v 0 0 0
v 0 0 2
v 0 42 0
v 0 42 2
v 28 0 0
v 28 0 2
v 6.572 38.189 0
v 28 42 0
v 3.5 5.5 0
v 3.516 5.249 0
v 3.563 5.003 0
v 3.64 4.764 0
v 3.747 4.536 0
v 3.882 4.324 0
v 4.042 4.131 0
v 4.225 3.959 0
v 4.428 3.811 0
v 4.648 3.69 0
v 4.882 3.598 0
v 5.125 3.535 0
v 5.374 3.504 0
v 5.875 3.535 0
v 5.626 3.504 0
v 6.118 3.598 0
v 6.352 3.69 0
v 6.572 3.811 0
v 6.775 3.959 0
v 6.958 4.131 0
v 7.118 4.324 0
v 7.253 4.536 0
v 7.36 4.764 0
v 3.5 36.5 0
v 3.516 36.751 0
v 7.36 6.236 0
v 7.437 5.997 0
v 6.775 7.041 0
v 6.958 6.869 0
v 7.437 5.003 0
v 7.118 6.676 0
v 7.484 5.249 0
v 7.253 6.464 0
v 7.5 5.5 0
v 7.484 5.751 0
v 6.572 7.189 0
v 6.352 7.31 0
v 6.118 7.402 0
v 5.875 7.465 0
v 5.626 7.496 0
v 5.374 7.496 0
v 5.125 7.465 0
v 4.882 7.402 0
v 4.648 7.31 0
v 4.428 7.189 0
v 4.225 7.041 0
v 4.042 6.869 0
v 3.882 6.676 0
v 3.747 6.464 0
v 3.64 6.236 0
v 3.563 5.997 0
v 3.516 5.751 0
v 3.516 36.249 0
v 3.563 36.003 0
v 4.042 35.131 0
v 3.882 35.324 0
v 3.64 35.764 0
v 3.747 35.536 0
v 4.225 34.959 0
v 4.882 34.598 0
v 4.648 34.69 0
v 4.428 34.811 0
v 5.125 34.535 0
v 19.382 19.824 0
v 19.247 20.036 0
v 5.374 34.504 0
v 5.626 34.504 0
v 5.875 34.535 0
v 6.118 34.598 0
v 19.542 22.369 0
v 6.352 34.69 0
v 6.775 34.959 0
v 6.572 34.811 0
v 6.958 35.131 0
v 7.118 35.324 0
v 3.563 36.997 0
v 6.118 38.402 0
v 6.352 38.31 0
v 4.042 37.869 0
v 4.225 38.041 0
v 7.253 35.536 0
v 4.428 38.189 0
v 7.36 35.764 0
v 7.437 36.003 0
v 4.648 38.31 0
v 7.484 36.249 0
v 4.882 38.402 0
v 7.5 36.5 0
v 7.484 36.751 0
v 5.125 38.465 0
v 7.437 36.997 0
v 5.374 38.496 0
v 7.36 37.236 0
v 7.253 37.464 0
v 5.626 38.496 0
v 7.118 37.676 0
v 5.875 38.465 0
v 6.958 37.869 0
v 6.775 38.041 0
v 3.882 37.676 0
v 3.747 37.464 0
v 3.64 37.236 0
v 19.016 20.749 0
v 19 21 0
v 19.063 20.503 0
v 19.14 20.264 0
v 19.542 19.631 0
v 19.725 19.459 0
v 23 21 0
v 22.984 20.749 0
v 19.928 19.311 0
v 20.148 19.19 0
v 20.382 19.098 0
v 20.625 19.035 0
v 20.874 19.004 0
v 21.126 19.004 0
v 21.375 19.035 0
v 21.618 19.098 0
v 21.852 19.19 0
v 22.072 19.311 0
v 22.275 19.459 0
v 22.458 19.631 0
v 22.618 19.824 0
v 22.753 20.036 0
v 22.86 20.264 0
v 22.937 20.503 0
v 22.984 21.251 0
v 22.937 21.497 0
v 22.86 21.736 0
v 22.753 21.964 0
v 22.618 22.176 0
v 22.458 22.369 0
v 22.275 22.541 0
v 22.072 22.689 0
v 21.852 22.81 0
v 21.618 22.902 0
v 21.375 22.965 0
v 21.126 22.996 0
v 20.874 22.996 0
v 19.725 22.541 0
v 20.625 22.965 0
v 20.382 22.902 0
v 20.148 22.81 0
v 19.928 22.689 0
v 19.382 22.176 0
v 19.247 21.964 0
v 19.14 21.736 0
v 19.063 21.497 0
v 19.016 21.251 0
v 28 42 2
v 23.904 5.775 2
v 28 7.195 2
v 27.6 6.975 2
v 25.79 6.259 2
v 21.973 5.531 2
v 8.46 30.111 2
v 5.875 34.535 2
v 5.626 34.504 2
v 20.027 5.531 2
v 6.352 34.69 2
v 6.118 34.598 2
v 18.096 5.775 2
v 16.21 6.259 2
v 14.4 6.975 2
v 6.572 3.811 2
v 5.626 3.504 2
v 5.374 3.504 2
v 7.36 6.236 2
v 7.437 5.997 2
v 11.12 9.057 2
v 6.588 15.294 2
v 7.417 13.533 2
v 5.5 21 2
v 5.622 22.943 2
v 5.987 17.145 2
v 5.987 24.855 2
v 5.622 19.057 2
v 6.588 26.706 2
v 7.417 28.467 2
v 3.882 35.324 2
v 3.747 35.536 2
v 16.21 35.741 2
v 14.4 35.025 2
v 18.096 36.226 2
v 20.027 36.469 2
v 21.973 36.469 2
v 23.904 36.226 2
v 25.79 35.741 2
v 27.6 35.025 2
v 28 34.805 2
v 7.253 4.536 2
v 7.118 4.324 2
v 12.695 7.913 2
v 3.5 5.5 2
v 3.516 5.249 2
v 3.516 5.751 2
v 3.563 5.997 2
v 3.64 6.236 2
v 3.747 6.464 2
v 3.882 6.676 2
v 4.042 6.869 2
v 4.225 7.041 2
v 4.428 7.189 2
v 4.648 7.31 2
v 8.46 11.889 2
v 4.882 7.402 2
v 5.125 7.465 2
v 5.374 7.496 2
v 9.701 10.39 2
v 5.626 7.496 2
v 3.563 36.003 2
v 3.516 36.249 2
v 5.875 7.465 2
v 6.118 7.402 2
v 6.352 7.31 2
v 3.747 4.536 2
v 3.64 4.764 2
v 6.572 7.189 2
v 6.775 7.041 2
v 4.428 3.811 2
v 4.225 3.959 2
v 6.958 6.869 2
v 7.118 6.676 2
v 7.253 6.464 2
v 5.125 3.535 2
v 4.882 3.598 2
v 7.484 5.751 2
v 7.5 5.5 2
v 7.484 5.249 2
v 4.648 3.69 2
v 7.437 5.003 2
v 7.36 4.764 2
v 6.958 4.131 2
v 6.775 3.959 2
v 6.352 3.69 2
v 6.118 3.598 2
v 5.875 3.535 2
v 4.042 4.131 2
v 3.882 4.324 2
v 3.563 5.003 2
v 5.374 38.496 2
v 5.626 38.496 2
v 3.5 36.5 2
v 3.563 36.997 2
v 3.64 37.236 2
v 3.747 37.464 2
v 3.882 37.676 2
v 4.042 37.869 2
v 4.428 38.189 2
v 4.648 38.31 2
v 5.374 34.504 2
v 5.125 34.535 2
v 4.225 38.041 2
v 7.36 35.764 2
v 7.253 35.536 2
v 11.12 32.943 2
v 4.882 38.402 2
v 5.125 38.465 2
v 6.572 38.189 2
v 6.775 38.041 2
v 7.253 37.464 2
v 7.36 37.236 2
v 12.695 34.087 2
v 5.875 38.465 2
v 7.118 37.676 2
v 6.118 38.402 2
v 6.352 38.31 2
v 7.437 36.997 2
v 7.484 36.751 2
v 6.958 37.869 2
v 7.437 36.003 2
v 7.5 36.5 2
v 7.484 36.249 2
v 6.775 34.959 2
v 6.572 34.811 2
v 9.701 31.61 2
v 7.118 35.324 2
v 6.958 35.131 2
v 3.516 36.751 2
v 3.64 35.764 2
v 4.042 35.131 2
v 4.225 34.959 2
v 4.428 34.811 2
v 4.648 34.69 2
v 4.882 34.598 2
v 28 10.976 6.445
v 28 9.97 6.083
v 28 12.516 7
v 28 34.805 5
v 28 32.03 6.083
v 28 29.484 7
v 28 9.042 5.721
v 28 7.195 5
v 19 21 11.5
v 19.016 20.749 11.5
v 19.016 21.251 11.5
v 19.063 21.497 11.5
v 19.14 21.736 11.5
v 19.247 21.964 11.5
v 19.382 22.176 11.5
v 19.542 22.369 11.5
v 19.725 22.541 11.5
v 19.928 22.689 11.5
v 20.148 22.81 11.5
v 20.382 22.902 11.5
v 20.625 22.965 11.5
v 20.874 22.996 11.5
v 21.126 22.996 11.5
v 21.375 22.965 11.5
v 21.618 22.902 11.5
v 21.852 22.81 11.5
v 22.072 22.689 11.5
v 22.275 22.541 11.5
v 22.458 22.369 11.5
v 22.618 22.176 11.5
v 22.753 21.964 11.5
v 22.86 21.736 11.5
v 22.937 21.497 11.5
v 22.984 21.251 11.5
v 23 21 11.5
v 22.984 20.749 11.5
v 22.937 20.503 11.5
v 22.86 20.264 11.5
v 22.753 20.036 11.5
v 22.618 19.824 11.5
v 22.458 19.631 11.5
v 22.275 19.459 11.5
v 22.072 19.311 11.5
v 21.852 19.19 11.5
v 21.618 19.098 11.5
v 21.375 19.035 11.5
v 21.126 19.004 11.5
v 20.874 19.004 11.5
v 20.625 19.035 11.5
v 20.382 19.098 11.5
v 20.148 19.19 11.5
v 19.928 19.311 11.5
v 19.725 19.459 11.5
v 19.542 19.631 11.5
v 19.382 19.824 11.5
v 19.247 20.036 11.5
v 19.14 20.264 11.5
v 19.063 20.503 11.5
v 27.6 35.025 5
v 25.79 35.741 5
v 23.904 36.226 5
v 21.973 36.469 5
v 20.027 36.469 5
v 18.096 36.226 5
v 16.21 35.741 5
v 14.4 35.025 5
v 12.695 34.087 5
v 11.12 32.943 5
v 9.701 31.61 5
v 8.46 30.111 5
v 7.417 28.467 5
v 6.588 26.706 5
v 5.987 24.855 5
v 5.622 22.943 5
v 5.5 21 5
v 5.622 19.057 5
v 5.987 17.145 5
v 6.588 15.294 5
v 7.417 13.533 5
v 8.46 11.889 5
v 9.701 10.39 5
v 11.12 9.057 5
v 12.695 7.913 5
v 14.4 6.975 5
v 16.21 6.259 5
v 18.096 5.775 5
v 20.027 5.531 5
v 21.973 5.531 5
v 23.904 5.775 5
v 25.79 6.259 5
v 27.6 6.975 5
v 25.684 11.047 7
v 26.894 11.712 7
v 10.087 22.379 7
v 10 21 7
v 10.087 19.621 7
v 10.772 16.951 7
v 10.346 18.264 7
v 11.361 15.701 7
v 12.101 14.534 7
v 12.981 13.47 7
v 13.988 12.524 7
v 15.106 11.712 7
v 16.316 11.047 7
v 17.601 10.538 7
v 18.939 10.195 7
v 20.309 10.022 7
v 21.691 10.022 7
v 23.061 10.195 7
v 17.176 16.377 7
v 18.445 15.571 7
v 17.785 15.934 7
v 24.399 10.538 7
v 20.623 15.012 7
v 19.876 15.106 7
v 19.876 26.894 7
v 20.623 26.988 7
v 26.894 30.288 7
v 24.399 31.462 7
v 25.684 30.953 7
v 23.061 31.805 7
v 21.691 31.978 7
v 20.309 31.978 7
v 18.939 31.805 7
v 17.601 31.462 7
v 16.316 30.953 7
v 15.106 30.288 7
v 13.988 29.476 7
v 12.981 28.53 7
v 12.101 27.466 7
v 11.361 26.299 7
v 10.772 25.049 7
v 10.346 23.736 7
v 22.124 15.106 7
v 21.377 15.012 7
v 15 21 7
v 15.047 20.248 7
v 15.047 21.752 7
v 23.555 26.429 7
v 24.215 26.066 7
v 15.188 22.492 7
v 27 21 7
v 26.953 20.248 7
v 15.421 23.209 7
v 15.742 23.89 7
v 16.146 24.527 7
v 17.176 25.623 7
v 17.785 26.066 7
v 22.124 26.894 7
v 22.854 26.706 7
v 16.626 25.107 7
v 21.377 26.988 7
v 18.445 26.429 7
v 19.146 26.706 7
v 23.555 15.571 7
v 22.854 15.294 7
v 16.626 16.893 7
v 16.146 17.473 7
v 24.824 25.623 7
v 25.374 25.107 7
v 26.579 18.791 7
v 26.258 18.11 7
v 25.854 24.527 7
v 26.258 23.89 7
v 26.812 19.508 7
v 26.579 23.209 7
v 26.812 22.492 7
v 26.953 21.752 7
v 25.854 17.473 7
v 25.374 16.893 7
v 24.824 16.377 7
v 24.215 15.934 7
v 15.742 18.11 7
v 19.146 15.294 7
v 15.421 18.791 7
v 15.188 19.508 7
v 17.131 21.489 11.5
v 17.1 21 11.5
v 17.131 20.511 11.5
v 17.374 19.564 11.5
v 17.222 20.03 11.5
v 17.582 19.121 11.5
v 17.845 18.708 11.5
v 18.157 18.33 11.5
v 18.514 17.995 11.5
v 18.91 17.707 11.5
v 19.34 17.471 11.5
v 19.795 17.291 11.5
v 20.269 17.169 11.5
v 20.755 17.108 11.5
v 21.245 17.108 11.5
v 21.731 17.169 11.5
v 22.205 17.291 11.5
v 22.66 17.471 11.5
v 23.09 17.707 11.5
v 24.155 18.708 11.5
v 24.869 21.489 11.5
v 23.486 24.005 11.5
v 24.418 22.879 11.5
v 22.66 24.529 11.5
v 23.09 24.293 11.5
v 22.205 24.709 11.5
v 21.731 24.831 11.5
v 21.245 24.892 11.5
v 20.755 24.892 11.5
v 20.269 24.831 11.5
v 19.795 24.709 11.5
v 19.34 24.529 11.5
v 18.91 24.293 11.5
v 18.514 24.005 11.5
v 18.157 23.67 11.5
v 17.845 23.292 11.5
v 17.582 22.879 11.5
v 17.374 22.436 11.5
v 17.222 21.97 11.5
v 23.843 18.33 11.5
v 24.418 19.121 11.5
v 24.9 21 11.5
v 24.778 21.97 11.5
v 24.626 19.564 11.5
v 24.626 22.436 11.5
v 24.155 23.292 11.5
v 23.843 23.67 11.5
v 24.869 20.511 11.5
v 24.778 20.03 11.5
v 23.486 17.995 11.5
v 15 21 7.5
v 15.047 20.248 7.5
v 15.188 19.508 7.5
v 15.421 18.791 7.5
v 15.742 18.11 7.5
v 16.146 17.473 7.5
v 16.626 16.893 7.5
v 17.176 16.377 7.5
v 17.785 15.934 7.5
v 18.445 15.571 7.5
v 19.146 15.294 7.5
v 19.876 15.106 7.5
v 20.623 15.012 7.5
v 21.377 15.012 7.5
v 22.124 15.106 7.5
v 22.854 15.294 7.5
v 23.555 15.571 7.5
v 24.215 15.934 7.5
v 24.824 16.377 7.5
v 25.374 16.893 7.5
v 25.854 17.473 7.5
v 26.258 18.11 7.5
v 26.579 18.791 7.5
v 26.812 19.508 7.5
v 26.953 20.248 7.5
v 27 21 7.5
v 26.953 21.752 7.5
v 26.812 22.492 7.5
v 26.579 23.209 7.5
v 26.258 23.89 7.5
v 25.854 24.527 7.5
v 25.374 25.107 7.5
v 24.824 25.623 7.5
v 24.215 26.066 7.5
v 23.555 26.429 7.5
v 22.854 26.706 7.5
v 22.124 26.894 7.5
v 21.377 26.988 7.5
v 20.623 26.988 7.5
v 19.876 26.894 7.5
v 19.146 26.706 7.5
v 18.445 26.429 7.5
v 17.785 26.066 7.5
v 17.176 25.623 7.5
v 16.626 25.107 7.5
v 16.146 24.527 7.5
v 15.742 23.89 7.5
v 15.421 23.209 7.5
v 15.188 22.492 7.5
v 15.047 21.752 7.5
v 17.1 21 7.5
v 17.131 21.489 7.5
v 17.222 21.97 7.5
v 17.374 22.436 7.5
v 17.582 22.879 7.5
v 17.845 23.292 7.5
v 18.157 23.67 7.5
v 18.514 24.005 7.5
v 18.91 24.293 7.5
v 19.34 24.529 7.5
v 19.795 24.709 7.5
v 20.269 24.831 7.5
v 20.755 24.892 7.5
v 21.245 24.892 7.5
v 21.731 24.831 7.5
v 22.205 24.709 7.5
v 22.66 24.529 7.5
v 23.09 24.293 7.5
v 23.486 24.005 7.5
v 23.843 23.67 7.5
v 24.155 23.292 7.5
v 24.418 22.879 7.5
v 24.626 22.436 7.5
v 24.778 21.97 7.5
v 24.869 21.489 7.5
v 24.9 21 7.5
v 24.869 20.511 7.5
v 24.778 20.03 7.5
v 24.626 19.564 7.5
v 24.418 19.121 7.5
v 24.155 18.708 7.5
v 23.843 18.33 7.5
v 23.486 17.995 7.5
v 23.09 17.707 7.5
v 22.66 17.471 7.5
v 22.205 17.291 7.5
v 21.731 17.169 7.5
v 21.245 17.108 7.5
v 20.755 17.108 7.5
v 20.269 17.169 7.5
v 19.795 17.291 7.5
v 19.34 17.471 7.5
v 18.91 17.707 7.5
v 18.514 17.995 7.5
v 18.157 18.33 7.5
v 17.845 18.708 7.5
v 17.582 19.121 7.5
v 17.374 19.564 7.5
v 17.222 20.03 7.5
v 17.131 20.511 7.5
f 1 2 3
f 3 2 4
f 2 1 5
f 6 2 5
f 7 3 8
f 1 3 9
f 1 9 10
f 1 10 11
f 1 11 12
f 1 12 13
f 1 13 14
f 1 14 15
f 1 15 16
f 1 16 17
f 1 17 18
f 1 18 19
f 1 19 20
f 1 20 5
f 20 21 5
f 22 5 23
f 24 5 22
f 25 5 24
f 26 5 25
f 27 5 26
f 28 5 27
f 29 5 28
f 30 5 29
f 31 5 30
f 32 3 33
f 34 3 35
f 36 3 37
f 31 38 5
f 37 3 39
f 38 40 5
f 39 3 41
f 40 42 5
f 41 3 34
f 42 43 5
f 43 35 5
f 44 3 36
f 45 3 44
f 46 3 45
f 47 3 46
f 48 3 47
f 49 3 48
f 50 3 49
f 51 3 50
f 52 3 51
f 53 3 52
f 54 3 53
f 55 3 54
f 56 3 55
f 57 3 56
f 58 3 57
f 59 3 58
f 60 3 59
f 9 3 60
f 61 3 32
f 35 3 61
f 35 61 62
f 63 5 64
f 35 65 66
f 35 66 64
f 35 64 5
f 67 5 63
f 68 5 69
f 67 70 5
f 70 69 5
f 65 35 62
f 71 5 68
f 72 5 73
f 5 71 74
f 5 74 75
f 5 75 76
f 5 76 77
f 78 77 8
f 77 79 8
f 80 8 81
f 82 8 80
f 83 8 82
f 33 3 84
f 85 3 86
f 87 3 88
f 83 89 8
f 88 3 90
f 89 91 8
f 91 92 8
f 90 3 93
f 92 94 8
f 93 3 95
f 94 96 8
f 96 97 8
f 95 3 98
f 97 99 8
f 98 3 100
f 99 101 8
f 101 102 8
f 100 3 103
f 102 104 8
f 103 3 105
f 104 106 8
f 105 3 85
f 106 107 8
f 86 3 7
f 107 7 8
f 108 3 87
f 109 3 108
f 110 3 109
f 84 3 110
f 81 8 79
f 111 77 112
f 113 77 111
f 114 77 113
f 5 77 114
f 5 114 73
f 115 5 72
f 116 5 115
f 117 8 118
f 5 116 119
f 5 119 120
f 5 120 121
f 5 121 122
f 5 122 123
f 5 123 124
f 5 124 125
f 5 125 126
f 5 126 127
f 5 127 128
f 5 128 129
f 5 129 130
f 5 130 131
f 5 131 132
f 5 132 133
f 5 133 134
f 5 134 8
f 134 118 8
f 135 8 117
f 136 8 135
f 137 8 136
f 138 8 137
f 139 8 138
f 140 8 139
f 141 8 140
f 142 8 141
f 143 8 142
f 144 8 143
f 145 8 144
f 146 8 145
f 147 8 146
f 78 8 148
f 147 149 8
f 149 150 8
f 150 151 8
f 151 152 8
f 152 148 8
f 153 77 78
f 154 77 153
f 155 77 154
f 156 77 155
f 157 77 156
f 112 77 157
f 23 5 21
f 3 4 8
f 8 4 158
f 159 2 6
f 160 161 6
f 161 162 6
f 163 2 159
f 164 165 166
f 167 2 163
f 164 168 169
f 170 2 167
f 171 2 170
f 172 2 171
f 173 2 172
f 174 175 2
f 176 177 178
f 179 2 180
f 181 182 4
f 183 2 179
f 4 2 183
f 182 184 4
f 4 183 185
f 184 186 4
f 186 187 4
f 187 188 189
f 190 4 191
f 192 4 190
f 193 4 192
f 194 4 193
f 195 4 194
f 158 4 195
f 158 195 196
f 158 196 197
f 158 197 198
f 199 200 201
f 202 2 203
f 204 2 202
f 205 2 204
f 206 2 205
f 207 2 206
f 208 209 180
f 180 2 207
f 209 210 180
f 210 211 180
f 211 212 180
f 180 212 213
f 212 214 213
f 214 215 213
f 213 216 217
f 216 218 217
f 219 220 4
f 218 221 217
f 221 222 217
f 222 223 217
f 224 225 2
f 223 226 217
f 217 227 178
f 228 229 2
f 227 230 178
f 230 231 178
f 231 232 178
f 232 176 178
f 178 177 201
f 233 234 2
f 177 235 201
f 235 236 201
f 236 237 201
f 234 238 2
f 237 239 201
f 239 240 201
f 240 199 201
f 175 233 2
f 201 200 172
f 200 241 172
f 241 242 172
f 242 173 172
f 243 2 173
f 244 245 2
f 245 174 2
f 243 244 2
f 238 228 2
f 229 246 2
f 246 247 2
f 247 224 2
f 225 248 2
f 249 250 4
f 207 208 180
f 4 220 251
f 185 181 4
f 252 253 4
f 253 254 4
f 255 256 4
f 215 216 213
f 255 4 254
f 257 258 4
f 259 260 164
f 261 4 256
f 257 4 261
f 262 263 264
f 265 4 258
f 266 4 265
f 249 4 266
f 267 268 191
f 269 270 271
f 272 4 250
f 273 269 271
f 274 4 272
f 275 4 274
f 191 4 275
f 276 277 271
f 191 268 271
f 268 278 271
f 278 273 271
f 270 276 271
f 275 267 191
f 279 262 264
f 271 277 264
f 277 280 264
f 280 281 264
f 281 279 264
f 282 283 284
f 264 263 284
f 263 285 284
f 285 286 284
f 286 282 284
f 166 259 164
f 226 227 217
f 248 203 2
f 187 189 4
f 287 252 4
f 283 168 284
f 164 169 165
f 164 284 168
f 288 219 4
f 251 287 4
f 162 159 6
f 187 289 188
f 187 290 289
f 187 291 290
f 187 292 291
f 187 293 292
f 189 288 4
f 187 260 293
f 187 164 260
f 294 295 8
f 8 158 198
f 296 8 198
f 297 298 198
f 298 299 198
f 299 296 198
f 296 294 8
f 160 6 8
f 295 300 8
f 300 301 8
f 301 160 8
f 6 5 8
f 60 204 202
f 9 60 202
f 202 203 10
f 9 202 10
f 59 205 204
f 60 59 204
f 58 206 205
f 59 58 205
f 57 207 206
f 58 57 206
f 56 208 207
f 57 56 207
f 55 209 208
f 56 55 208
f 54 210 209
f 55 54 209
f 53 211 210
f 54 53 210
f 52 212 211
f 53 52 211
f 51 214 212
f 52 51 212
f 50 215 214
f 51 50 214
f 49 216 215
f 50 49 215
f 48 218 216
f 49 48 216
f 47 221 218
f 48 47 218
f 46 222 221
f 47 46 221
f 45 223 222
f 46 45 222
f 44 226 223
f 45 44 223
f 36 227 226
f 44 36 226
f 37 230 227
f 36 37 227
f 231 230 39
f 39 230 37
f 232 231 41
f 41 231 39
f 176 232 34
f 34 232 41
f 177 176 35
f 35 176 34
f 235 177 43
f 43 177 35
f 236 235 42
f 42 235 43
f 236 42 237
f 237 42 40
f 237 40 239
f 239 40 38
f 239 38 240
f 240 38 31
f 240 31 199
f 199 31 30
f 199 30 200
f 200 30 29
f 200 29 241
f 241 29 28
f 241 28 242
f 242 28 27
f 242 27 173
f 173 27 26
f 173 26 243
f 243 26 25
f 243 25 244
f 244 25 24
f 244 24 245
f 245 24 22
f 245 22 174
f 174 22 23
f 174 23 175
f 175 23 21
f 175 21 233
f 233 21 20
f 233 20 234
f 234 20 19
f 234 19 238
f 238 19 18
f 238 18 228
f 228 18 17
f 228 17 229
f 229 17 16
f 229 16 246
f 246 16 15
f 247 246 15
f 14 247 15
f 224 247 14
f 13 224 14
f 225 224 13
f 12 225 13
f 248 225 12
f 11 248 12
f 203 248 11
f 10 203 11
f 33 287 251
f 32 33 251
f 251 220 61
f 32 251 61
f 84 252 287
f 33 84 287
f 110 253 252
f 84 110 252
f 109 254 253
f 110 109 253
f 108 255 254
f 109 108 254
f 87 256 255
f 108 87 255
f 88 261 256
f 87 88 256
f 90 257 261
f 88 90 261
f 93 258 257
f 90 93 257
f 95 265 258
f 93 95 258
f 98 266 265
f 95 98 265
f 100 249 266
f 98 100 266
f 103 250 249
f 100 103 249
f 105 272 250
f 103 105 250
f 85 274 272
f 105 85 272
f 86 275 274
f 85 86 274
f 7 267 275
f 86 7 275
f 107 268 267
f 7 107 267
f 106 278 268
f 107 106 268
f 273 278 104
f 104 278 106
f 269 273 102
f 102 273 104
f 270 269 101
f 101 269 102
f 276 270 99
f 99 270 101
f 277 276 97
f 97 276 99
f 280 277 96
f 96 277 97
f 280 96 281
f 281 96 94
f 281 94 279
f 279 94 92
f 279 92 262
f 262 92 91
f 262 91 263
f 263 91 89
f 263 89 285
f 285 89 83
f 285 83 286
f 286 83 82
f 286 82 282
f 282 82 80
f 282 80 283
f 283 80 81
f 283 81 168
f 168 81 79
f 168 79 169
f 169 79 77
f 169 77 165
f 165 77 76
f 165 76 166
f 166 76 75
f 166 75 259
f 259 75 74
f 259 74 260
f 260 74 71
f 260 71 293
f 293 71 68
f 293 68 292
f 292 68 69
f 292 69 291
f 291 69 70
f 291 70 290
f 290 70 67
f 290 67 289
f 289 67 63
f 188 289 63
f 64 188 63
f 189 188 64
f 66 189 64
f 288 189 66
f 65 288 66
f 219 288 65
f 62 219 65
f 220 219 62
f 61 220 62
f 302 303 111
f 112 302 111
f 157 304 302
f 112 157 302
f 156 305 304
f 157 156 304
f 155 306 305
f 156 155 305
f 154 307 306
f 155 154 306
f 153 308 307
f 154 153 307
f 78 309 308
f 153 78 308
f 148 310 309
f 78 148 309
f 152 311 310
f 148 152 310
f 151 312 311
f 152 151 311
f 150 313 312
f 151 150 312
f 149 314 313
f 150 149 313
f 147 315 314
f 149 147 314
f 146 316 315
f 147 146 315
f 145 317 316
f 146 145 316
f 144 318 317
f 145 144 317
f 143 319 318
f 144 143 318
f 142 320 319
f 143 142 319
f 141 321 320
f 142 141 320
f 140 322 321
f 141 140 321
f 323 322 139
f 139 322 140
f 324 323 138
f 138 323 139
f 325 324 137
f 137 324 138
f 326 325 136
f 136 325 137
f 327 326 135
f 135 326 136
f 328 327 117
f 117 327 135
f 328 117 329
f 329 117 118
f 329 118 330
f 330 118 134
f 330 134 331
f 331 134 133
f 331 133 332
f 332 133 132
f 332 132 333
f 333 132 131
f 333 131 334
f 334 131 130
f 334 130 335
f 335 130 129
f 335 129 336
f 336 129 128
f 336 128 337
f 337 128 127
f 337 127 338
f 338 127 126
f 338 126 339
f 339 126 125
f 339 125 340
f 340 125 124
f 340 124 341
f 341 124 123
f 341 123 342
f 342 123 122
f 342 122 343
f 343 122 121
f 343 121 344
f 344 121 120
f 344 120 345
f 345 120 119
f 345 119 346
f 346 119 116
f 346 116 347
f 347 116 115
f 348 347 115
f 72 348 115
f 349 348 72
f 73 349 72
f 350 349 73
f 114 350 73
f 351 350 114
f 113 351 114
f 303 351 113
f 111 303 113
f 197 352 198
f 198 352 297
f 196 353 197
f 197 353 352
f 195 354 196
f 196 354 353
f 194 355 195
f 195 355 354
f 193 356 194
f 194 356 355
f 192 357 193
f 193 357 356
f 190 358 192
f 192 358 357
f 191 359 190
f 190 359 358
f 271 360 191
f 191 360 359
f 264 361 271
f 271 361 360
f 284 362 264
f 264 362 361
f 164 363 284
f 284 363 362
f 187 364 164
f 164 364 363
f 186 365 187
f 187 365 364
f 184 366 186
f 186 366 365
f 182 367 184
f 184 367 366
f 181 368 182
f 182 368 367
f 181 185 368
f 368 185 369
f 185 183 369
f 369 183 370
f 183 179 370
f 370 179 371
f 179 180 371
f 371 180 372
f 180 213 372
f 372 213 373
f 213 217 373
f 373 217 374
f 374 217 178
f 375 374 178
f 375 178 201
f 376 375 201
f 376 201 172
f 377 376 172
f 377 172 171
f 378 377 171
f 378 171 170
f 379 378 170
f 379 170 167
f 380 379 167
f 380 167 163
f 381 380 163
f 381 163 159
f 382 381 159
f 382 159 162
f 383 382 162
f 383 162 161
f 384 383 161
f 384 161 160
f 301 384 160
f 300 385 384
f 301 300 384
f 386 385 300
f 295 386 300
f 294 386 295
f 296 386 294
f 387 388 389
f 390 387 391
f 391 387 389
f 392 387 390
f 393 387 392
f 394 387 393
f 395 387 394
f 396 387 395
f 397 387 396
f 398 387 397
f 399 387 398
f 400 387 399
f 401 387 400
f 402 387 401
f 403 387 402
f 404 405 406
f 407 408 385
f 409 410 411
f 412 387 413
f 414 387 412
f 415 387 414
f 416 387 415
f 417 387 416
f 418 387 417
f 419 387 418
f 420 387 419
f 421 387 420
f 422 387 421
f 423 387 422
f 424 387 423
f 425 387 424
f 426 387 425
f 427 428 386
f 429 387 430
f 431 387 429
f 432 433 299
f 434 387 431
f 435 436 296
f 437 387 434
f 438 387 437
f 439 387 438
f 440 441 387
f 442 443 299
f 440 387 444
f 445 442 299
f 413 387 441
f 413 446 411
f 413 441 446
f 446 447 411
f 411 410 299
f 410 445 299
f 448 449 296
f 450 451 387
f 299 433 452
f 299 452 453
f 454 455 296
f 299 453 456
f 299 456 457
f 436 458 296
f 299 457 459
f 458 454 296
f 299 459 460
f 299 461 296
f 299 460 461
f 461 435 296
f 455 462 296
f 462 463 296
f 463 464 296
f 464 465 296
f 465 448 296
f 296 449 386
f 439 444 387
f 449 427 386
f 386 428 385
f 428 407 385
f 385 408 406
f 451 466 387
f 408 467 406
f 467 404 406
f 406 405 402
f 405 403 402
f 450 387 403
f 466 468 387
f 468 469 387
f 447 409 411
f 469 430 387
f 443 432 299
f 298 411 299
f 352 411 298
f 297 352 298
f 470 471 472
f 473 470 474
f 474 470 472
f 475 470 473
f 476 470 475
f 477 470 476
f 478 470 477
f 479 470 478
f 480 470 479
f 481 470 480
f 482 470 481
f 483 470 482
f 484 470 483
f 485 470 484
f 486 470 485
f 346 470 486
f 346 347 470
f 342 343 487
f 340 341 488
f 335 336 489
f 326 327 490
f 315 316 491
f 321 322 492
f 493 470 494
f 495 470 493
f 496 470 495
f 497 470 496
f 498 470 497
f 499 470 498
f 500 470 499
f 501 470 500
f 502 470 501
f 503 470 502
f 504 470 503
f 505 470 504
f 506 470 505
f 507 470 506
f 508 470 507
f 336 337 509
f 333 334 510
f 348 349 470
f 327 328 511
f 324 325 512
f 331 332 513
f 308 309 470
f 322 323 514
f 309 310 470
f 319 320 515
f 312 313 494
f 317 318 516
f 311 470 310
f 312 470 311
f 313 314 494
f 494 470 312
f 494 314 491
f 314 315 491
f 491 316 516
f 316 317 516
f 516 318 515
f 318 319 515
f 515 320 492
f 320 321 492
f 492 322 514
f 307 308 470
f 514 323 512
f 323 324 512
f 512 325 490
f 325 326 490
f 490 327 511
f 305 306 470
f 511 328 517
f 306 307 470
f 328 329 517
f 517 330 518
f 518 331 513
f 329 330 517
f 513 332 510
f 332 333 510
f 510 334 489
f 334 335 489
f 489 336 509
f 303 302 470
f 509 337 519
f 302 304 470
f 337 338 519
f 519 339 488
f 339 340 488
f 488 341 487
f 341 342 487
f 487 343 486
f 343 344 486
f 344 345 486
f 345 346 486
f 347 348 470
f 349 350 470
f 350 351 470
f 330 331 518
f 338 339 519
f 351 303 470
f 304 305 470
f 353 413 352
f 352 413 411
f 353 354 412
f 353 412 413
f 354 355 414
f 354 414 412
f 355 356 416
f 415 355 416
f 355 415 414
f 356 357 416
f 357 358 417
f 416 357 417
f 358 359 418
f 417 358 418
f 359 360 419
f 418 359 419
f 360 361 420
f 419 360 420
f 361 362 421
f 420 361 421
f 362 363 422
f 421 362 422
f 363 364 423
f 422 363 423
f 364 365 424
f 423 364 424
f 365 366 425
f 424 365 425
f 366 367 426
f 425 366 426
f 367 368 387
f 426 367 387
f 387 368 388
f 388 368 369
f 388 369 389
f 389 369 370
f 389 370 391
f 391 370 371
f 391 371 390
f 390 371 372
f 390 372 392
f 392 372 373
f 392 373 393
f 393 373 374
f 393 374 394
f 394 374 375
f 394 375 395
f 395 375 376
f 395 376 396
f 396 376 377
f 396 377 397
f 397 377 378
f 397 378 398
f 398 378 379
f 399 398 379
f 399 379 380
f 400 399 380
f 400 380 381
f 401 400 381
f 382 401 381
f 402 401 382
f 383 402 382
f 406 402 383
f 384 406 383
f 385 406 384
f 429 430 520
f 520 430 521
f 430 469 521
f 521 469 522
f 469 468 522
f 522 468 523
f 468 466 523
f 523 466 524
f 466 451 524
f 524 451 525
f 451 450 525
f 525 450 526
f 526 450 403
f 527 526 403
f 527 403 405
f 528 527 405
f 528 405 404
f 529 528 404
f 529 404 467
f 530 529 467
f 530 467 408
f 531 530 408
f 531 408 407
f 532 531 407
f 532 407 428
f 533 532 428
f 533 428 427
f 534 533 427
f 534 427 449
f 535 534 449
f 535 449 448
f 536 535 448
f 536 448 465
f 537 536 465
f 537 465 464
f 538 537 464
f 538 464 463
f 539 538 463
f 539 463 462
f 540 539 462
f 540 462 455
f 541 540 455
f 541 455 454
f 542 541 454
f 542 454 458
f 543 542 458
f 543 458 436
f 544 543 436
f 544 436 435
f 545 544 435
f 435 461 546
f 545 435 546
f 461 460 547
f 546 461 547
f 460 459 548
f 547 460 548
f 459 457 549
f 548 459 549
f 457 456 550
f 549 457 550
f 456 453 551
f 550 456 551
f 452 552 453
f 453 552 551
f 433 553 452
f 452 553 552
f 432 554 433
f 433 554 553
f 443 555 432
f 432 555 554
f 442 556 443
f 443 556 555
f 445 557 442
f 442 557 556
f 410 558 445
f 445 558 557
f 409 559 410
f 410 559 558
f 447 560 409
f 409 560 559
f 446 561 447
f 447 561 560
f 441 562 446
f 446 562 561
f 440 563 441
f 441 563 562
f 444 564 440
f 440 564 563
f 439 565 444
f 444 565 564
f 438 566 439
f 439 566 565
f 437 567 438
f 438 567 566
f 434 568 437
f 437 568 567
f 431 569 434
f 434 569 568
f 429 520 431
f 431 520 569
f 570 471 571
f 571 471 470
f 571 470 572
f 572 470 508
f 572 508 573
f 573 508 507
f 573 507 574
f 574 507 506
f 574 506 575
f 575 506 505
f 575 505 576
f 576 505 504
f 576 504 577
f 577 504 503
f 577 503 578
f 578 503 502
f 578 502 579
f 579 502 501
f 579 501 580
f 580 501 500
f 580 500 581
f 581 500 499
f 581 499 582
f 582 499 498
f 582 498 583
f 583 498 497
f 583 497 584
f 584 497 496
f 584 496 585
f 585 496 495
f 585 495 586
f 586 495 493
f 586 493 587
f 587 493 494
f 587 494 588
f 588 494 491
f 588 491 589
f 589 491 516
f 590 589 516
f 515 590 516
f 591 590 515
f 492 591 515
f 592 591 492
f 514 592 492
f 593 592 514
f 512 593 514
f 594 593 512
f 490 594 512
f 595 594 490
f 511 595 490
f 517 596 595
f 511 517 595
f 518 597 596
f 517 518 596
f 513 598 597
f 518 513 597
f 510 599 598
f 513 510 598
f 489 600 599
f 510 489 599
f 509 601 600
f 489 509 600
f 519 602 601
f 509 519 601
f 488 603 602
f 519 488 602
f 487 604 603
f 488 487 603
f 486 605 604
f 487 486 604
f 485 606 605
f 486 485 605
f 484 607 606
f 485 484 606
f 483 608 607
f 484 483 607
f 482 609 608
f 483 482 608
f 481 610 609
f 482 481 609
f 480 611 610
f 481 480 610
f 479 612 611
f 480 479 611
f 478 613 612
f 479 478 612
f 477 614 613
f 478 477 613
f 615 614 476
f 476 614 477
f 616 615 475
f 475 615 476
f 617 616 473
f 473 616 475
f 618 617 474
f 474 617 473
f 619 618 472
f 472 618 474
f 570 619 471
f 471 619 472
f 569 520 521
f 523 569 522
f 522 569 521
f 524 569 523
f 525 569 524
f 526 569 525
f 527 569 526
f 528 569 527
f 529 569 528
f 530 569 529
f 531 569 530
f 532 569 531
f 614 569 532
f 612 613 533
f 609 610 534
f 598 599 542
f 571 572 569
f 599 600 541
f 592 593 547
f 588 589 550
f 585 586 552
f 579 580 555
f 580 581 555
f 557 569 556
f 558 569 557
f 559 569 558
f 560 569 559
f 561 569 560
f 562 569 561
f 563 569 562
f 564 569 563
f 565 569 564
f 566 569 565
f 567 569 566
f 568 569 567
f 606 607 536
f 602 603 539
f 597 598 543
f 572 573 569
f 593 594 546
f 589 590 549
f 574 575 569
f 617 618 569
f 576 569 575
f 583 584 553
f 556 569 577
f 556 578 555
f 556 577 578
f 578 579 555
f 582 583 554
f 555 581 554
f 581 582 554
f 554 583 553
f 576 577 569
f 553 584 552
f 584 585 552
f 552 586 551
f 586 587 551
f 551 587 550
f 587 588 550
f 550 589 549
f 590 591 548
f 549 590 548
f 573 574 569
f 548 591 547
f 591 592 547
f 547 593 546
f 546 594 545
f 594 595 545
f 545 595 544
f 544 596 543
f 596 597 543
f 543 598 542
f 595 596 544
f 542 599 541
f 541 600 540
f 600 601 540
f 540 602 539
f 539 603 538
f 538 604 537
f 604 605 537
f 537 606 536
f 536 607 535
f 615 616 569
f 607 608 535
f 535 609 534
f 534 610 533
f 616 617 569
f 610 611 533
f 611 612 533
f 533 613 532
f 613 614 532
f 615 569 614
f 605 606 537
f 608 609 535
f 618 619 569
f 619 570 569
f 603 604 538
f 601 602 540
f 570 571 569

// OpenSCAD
r_m3=2;
r_ecrou_m3=3.3;
r_m8=3.9;
ep_608=8;
ep=2;
l=42;
height=19;

module retour_x(){
	difference(){
		union(){
		cube([l,l,ep]);

		//flasque roulement
		translate([l/2,l/2,ep]){cylinder(r=15.5, h=height/2-2-ep_608/2-0.5, $fn=50);}
		translate([l/2,l/2,ep+height/2-2-ep_608/2-0.5]){cylinder(r1=15.5, r2=11, h=2, $fn=50);}
		translate([l/2,l/2,ep+height/2-2-ep_608/2+2-0.5]){cylinder(r=6, h=0.5, $fn=50);}
		translate([l/2,l/2,ep+height/2-2-ep_608/2+2]){cylinder(r=r_m8, h=ep_608/2, $fn=50);}
		}
	
		//trous pour fixation
		translate([5.5,5.5,-5]){cylinder(r=r_m3, h=15, $fn=50);}
		translate([l-5.5,5.5,-5]){cylinder(r=r_m3, h=15, $fn=50);}
		translate([5.5,l-5.5,-5]){cylinder(r=r_m3, h=15, $fn=50);}
		translate([l-5.5,l-5.5,-5]){cylinder(r=r_m3, h=15, $fn=50);}
		
		translate([l/2,l/2,-5]){cylinder(r=r_m3, h=50, $fn=50);}

		//rabotage de la pièce pour rentrer
		translate([28,-5,-5]){cube([60,60,50]);}
	}


}
retour_x();
